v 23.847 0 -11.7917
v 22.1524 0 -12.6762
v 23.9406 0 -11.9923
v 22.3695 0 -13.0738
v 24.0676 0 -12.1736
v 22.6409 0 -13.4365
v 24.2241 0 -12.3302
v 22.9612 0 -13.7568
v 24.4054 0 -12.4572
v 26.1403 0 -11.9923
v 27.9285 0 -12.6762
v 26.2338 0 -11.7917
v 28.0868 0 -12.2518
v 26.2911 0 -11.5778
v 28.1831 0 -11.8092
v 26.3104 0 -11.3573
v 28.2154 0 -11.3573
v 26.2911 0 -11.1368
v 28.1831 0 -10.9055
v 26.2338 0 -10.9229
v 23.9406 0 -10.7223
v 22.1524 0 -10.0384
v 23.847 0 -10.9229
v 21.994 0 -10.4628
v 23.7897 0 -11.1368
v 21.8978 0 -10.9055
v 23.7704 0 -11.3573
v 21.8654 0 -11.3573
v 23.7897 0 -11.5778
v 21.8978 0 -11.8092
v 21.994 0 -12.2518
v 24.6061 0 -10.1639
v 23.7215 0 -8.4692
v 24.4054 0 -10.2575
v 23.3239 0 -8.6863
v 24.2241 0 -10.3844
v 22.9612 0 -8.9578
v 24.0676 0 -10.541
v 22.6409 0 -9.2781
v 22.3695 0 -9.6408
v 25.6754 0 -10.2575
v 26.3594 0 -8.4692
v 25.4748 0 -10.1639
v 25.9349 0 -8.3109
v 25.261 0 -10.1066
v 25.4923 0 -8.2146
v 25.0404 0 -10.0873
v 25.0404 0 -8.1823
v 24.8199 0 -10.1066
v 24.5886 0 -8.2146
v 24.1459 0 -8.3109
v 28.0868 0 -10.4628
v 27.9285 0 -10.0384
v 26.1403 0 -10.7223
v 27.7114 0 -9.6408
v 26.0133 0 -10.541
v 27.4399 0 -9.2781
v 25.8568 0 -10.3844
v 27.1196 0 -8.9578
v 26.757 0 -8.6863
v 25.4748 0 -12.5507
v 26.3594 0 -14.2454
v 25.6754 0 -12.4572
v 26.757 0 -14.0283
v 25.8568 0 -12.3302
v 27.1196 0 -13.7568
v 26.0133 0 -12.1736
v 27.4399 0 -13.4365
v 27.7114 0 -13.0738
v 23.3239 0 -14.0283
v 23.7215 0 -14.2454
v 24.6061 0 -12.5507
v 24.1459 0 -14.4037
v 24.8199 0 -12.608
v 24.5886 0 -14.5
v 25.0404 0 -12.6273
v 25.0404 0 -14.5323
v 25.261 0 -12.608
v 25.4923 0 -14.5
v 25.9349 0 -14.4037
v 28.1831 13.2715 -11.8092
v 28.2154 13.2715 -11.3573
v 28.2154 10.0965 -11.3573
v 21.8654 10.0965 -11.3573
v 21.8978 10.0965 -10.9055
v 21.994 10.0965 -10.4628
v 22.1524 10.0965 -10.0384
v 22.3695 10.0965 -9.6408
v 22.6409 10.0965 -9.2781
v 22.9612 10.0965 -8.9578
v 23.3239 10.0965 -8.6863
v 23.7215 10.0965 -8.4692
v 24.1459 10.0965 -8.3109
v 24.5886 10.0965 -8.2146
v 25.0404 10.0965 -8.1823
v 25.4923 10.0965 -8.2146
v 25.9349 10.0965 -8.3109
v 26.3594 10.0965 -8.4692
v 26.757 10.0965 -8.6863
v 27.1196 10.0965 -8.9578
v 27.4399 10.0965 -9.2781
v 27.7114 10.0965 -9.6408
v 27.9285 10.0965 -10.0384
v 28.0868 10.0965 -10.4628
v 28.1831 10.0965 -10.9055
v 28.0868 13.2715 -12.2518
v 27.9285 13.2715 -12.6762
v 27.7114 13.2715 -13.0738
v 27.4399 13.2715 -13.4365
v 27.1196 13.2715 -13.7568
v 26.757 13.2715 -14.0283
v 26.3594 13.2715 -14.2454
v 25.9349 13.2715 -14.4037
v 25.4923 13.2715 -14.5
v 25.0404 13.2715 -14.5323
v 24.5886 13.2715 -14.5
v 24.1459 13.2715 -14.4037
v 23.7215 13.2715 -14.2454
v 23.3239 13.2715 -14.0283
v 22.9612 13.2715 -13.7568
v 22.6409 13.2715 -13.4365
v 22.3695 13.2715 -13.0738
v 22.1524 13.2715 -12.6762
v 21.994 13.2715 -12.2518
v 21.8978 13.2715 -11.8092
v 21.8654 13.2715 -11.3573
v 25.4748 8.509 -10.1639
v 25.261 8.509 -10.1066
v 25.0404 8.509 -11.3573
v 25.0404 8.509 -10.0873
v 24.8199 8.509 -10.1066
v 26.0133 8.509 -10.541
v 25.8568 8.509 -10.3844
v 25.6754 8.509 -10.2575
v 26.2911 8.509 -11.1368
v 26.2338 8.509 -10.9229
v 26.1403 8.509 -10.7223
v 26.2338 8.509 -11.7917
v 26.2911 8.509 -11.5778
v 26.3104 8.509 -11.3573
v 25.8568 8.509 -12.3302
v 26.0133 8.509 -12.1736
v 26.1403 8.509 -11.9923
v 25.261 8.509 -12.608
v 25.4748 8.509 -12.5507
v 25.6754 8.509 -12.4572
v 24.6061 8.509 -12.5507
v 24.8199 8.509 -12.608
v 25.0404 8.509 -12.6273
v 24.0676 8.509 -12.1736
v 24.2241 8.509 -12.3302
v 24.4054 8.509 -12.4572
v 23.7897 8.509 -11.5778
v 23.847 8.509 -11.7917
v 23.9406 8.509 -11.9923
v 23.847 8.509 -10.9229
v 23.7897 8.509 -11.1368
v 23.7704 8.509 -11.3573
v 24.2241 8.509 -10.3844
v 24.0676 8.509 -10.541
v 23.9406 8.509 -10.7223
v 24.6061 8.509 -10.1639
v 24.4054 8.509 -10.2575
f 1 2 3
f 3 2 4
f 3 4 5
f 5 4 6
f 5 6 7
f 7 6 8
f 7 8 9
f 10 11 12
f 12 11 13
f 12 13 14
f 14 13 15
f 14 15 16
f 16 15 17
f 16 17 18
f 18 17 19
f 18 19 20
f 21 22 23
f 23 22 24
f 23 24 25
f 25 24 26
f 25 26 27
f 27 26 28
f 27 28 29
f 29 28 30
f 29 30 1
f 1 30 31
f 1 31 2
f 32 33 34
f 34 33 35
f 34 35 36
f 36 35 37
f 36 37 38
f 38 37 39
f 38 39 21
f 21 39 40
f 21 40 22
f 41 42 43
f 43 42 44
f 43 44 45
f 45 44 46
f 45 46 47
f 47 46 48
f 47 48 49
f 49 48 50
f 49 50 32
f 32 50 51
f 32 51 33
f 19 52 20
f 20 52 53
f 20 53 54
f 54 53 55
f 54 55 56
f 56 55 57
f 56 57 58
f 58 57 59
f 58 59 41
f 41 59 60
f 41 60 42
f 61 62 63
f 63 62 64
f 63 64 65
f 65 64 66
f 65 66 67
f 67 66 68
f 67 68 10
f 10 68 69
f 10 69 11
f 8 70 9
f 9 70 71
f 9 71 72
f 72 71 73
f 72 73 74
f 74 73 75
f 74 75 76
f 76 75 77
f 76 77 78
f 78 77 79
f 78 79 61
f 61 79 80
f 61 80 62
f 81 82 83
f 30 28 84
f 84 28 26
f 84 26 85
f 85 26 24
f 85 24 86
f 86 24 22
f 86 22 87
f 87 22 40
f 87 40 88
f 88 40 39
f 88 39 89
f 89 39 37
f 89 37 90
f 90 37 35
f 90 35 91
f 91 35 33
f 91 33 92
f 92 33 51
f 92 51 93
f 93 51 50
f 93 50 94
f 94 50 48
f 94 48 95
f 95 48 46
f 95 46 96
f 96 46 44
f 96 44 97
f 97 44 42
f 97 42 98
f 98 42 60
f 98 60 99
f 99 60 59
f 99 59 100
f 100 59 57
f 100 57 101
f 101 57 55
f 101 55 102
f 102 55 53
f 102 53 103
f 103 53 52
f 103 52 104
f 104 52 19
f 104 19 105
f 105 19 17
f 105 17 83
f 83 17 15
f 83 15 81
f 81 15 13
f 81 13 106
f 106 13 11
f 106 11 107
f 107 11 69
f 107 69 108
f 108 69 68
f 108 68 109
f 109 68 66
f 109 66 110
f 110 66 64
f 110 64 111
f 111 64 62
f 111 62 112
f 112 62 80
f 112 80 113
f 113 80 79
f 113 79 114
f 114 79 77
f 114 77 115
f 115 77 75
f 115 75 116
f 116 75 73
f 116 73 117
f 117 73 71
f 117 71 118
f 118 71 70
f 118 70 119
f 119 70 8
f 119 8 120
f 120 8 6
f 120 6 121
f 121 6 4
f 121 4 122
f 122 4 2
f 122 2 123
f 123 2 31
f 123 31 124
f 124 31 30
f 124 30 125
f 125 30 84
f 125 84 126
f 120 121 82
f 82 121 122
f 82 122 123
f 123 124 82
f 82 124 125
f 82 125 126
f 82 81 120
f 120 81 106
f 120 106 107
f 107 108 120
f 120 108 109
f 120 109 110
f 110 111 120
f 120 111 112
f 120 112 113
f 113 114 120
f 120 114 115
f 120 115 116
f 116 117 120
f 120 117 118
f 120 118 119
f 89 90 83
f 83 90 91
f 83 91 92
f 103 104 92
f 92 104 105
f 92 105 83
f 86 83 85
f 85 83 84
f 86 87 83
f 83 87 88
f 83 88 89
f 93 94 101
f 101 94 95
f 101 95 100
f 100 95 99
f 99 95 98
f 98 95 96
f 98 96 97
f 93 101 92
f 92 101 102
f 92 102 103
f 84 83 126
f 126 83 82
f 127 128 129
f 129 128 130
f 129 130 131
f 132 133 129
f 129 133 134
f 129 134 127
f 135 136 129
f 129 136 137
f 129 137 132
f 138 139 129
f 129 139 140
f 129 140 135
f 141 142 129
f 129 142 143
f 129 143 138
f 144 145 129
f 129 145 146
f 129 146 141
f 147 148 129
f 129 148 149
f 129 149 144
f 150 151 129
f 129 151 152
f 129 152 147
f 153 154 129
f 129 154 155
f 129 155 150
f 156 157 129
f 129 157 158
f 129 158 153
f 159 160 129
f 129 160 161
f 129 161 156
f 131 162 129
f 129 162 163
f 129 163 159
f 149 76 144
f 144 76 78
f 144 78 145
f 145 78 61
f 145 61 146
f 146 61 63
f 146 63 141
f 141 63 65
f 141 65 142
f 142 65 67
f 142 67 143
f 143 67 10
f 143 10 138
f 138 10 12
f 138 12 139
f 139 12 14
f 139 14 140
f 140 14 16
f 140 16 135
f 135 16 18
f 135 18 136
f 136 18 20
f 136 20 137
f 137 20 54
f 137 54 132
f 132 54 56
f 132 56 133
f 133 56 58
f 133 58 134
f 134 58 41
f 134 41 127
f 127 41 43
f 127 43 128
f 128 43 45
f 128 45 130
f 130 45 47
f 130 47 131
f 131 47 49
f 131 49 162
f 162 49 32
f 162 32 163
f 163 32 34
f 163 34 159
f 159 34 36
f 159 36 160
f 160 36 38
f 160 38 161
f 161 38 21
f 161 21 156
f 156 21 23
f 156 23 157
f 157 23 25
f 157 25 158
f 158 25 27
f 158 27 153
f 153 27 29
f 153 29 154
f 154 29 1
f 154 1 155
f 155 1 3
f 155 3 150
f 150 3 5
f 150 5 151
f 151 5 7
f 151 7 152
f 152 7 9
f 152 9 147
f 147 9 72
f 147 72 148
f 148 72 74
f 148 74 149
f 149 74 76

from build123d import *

# Parameters (mm, degrees)
SKETCH1_R                = 3.175
BOSS_EXTRUDE1_DEPTH      = 13.2715
SKETCH2_W                = 6.35
SKETCH2_H                = 4.534297592
CLEAR_LCD_FASTENER_DEPTH = 3.175
SKETCH3_R                = 1.27
TAP_NUMBER_4_DEPTH       = 8.509


with BuildPart() as part:
    # Sketch1 → Boss-Extrude1 (new body)
    with BuildSketch(Plane(origin=(0, 0, 0), x_dir=(1, 0, 0), z_dir=(0, 1, 0))):
        with Locations(Location((25.040432804, 11.35730315, 0), (0, 0, 90))):
            Circle(SKETCH1_R)
    extrude(amount=BOSS_EXTRUDE1_DEPTH)

    # Sketch2 → clear LCD fastener (cut)
    with BuildSketch(Plane(origin=(0, 13.2715, 0), x_dir=(1, 0, 0), z_dir=(0, 1, 0))):
        with Locations((25.040432804, 9.090154354)):
            Rectangle(SKETCH2_W, SKETCH2_H)
    extrude(amount=-CLEAR_LCD_FASTENER_DEPTH, mode=Mode.SUBTRACT)

    # Sketch3 → tap number 4 (cut)
    with BuildSketch(Plane.XZ):
        with Locations(Location((25.040432804, -11.35730315, 0), (0, 0, 270))):
            Circle(SKETCH3_R)
    extrude(amount=-TAP_NUMBER_4_DEPTH, mode=Mode.SUBTRACT)


solid = part.part
